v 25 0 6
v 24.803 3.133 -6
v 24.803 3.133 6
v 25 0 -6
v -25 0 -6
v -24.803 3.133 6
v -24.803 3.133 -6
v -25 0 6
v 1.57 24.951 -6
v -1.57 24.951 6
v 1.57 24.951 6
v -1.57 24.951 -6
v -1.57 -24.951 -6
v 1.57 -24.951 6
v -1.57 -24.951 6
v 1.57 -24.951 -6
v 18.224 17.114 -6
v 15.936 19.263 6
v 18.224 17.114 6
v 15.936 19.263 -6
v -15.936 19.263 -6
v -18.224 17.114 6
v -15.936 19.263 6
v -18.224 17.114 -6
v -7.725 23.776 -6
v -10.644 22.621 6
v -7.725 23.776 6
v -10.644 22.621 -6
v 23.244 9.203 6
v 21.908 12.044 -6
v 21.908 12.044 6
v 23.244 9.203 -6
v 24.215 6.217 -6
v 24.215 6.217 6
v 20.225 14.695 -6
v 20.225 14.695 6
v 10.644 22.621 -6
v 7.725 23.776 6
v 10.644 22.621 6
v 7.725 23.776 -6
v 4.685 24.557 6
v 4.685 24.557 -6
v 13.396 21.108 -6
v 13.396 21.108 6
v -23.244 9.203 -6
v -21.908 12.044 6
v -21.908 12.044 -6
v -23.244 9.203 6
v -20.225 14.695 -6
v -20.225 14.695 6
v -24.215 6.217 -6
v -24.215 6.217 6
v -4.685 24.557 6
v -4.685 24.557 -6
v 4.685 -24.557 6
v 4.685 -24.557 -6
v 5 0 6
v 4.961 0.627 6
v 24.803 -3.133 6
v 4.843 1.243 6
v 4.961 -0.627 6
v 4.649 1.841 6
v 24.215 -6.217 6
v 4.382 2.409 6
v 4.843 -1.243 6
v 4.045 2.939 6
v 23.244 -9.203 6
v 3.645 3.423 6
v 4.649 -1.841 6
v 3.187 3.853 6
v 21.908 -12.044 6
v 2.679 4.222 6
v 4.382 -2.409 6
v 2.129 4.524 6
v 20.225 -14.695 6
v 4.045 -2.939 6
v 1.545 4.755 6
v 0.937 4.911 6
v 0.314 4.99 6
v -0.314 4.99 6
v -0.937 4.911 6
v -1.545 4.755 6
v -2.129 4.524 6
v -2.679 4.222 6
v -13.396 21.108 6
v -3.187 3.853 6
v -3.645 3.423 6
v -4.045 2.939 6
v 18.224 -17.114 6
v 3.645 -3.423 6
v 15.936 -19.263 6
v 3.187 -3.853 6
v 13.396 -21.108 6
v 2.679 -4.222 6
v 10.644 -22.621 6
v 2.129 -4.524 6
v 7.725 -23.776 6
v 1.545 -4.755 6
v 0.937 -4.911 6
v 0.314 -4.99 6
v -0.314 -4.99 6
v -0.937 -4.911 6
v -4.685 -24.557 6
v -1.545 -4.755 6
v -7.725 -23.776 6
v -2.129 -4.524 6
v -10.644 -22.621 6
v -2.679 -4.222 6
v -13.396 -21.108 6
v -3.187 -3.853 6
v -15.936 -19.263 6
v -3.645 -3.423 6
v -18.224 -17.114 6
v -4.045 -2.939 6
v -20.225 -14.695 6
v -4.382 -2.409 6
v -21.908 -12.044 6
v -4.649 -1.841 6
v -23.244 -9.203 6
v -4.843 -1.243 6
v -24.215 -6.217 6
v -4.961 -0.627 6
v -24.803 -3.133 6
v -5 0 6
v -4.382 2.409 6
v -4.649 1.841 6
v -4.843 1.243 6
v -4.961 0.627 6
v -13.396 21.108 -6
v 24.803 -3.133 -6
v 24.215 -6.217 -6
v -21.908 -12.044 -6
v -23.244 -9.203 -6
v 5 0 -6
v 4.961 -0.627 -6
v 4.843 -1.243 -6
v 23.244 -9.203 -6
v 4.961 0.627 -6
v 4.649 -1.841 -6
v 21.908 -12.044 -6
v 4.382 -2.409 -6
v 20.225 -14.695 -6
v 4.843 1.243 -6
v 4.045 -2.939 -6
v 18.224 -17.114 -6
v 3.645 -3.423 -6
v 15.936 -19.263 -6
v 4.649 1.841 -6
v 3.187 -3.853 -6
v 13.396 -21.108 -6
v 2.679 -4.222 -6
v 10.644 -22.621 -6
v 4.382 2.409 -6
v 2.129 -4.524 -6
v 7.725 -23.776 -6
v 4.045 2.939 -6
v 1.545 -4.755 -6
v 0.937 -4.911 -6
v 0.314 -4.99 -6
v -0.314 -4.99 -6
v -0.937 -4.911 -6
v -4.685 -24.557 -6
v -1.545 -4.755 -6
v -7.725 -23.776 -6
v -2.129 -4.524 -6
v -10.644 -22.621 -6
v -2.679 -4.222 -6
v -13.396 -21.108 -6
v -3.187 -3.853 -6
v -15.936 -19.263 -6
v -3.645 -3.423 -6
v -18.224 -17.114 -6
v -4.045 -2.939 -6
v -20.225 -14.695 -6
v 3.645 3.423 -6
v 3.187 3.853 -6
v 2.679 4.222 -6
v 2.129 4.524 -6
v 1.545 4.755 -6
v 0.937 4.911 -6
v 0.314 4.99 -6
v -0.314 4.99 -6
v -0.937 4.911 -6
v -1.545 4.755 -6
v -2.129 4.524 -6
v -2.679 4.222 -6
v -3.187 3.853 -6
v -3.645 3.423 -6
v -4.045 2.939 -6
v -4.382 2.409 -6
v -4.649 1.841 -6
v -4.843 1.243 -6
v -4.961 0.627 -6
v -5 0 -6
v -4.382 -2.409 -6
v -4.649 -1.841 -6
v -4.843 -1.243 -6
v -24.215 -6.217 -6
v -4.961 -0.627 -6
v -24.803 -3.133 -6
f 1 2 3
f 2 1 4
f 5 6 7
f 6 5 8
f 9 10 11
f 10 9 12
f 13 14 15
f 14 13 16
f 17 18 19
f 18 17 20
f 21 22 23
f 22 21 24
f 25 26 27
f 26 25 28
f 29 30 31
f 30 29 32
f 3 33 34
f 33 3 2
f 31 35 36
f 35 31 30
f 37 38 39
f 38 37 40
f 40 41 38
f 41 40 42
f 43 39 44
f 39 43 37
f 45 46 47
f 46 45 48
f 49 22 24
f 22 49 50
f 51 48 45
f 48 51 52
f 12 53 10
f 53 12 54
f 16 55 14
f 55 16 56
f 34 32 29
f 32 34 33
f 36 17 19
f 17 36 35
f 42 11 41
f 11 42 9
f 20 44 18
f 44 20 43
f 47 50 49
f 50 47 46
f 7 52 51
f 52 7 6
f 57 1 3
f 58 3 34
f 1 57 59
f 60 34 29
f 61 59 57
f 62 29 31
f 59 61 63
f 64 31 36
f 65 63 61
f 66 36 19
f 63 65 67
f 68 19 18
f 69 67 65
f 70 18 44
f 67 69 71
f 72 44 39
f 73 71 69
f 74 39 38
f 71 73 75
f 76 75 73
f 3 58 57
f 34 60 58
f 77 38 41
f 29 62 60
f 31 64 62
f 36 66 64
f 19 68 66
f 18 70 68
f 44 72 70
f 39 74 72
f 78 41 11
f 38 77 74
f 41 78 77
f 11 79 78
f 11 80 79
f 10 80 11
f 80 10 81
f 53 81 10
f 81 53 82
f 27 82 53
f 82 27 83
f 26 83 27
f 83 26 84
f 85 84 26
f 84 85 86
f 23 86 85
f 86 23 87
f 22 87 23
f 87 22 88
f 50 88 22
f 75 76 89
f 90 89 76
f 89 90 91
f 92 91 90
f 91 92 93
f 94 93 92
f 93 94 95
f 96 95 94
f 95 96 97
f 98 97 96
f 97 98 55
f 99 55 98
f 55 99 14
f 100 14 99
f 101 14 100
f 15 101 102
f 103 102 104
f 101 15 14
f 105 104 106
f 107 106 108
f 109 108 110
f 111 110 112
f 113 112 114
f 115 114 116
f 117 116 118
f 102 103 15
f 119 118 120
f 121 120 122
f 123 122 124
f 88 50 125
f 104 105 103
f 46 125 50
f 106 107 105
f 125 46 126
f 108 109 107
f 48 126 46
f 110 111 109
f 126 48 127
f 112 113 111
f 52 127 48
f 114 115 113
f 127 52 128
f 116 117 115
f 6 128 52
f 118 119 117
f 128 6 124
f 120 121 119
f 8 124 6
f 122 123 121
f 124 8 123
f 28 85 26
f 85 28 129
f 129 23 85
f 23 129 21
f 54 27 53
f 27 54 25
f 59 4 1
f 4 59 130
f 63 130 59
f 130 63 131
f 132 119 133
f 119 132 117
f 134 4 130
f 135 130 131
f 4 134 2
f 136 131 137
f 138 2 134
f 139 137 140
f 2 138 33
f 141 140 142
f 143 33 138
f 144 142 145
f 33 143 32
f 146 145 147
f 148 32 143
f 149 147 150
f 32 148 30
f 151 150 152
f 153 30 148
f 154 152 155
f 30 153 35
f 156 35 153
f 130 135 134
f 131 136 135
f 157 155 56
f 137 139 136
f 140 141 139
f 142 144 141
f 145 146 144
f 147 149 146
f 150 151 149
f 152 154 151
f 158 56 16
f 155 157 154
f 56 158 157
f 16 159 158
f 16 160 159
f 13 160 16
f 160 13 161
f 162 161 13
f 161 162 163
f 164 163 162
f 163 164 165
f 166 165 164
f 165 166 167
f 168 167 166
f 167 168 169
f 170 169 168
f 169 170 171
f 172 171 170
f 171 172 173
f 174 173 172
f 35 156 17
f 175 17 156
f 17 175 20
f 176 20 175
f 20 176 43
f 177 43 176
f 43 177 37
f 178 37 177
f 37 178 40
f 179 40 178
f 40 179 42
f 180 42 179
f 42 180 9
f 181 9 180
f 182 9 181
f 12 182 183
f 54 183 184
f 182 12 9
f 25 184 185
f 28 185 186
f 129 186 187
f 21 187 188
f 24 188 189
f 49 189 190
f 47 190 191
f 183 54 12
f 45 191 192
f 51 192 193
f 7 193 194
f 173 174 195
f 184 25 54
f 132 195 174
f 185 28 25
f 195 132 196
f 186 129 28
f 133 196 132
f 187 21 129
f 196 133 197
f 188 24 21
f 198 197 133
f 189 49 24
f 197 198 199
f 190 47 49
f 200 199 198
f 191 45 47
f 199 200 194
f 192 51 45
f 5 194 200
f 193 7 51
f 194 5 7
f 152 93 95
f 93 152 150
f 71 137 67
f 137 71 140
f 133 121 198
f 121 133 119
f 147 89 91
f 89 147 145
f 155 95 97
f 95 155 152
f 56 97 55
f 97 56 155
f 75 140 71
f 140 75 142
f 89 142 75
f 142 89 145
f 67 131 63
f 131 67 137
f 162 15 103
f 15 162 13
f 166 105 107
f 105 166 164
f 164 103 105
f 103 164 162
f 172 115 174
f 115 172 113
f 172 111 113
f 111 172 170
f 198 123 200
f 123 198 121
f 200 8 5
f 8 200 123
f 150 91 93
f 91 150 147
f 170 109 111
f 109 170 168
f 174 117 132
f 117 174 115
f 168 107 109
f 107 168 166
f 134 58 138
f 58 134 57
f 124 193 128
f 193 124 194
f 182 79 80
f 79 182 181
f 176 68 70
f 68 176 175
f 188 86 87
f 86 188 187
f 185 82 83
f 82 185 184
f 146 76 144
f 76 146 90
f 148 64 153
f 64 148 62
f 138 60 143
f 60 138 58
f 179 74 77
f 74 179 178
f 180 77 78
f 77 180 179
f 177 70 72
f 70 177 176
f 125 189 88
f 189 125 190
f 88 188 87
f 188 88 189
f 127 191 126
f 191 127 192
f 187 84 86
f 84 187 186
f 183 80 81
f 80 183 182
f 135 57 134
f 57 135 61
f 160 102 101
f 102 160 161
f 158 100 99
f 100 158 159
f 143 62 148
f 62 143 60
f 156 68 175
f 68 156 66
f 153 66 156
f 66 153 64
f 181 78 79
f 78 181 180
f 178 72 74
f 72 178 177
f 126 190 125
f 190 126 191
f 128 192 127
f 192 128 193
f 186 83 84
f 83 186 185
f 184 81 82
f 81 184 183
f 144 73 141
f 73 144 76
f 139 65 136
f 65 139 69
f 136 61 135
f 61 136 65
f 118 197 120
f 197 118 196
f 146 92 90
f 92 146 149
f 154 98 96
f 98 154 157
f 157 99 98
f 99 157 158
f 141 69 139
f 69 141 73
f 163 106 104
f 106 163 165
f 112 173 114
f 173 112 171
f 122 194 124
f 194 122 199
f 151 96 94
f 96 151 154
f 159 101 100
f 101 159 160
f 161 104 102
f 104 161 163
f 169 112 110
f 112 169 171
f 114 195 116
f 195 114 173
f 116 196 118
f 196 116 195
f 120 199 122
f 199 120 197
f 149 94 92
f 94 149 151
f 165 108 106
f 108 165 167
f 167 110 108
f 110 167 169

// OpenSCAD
$fn = 50;


difference() {
	union() {
		translate(v = [0, 0, -6.0000000000]) {
			cylinder(h = 12, r = 25.0000000000);
		}
	}
	union() {
		translate(v = [0, 0, -100.0000000000]) {
			cylinder(h = 200, r = 5.0000000000);
		}
	}
}
